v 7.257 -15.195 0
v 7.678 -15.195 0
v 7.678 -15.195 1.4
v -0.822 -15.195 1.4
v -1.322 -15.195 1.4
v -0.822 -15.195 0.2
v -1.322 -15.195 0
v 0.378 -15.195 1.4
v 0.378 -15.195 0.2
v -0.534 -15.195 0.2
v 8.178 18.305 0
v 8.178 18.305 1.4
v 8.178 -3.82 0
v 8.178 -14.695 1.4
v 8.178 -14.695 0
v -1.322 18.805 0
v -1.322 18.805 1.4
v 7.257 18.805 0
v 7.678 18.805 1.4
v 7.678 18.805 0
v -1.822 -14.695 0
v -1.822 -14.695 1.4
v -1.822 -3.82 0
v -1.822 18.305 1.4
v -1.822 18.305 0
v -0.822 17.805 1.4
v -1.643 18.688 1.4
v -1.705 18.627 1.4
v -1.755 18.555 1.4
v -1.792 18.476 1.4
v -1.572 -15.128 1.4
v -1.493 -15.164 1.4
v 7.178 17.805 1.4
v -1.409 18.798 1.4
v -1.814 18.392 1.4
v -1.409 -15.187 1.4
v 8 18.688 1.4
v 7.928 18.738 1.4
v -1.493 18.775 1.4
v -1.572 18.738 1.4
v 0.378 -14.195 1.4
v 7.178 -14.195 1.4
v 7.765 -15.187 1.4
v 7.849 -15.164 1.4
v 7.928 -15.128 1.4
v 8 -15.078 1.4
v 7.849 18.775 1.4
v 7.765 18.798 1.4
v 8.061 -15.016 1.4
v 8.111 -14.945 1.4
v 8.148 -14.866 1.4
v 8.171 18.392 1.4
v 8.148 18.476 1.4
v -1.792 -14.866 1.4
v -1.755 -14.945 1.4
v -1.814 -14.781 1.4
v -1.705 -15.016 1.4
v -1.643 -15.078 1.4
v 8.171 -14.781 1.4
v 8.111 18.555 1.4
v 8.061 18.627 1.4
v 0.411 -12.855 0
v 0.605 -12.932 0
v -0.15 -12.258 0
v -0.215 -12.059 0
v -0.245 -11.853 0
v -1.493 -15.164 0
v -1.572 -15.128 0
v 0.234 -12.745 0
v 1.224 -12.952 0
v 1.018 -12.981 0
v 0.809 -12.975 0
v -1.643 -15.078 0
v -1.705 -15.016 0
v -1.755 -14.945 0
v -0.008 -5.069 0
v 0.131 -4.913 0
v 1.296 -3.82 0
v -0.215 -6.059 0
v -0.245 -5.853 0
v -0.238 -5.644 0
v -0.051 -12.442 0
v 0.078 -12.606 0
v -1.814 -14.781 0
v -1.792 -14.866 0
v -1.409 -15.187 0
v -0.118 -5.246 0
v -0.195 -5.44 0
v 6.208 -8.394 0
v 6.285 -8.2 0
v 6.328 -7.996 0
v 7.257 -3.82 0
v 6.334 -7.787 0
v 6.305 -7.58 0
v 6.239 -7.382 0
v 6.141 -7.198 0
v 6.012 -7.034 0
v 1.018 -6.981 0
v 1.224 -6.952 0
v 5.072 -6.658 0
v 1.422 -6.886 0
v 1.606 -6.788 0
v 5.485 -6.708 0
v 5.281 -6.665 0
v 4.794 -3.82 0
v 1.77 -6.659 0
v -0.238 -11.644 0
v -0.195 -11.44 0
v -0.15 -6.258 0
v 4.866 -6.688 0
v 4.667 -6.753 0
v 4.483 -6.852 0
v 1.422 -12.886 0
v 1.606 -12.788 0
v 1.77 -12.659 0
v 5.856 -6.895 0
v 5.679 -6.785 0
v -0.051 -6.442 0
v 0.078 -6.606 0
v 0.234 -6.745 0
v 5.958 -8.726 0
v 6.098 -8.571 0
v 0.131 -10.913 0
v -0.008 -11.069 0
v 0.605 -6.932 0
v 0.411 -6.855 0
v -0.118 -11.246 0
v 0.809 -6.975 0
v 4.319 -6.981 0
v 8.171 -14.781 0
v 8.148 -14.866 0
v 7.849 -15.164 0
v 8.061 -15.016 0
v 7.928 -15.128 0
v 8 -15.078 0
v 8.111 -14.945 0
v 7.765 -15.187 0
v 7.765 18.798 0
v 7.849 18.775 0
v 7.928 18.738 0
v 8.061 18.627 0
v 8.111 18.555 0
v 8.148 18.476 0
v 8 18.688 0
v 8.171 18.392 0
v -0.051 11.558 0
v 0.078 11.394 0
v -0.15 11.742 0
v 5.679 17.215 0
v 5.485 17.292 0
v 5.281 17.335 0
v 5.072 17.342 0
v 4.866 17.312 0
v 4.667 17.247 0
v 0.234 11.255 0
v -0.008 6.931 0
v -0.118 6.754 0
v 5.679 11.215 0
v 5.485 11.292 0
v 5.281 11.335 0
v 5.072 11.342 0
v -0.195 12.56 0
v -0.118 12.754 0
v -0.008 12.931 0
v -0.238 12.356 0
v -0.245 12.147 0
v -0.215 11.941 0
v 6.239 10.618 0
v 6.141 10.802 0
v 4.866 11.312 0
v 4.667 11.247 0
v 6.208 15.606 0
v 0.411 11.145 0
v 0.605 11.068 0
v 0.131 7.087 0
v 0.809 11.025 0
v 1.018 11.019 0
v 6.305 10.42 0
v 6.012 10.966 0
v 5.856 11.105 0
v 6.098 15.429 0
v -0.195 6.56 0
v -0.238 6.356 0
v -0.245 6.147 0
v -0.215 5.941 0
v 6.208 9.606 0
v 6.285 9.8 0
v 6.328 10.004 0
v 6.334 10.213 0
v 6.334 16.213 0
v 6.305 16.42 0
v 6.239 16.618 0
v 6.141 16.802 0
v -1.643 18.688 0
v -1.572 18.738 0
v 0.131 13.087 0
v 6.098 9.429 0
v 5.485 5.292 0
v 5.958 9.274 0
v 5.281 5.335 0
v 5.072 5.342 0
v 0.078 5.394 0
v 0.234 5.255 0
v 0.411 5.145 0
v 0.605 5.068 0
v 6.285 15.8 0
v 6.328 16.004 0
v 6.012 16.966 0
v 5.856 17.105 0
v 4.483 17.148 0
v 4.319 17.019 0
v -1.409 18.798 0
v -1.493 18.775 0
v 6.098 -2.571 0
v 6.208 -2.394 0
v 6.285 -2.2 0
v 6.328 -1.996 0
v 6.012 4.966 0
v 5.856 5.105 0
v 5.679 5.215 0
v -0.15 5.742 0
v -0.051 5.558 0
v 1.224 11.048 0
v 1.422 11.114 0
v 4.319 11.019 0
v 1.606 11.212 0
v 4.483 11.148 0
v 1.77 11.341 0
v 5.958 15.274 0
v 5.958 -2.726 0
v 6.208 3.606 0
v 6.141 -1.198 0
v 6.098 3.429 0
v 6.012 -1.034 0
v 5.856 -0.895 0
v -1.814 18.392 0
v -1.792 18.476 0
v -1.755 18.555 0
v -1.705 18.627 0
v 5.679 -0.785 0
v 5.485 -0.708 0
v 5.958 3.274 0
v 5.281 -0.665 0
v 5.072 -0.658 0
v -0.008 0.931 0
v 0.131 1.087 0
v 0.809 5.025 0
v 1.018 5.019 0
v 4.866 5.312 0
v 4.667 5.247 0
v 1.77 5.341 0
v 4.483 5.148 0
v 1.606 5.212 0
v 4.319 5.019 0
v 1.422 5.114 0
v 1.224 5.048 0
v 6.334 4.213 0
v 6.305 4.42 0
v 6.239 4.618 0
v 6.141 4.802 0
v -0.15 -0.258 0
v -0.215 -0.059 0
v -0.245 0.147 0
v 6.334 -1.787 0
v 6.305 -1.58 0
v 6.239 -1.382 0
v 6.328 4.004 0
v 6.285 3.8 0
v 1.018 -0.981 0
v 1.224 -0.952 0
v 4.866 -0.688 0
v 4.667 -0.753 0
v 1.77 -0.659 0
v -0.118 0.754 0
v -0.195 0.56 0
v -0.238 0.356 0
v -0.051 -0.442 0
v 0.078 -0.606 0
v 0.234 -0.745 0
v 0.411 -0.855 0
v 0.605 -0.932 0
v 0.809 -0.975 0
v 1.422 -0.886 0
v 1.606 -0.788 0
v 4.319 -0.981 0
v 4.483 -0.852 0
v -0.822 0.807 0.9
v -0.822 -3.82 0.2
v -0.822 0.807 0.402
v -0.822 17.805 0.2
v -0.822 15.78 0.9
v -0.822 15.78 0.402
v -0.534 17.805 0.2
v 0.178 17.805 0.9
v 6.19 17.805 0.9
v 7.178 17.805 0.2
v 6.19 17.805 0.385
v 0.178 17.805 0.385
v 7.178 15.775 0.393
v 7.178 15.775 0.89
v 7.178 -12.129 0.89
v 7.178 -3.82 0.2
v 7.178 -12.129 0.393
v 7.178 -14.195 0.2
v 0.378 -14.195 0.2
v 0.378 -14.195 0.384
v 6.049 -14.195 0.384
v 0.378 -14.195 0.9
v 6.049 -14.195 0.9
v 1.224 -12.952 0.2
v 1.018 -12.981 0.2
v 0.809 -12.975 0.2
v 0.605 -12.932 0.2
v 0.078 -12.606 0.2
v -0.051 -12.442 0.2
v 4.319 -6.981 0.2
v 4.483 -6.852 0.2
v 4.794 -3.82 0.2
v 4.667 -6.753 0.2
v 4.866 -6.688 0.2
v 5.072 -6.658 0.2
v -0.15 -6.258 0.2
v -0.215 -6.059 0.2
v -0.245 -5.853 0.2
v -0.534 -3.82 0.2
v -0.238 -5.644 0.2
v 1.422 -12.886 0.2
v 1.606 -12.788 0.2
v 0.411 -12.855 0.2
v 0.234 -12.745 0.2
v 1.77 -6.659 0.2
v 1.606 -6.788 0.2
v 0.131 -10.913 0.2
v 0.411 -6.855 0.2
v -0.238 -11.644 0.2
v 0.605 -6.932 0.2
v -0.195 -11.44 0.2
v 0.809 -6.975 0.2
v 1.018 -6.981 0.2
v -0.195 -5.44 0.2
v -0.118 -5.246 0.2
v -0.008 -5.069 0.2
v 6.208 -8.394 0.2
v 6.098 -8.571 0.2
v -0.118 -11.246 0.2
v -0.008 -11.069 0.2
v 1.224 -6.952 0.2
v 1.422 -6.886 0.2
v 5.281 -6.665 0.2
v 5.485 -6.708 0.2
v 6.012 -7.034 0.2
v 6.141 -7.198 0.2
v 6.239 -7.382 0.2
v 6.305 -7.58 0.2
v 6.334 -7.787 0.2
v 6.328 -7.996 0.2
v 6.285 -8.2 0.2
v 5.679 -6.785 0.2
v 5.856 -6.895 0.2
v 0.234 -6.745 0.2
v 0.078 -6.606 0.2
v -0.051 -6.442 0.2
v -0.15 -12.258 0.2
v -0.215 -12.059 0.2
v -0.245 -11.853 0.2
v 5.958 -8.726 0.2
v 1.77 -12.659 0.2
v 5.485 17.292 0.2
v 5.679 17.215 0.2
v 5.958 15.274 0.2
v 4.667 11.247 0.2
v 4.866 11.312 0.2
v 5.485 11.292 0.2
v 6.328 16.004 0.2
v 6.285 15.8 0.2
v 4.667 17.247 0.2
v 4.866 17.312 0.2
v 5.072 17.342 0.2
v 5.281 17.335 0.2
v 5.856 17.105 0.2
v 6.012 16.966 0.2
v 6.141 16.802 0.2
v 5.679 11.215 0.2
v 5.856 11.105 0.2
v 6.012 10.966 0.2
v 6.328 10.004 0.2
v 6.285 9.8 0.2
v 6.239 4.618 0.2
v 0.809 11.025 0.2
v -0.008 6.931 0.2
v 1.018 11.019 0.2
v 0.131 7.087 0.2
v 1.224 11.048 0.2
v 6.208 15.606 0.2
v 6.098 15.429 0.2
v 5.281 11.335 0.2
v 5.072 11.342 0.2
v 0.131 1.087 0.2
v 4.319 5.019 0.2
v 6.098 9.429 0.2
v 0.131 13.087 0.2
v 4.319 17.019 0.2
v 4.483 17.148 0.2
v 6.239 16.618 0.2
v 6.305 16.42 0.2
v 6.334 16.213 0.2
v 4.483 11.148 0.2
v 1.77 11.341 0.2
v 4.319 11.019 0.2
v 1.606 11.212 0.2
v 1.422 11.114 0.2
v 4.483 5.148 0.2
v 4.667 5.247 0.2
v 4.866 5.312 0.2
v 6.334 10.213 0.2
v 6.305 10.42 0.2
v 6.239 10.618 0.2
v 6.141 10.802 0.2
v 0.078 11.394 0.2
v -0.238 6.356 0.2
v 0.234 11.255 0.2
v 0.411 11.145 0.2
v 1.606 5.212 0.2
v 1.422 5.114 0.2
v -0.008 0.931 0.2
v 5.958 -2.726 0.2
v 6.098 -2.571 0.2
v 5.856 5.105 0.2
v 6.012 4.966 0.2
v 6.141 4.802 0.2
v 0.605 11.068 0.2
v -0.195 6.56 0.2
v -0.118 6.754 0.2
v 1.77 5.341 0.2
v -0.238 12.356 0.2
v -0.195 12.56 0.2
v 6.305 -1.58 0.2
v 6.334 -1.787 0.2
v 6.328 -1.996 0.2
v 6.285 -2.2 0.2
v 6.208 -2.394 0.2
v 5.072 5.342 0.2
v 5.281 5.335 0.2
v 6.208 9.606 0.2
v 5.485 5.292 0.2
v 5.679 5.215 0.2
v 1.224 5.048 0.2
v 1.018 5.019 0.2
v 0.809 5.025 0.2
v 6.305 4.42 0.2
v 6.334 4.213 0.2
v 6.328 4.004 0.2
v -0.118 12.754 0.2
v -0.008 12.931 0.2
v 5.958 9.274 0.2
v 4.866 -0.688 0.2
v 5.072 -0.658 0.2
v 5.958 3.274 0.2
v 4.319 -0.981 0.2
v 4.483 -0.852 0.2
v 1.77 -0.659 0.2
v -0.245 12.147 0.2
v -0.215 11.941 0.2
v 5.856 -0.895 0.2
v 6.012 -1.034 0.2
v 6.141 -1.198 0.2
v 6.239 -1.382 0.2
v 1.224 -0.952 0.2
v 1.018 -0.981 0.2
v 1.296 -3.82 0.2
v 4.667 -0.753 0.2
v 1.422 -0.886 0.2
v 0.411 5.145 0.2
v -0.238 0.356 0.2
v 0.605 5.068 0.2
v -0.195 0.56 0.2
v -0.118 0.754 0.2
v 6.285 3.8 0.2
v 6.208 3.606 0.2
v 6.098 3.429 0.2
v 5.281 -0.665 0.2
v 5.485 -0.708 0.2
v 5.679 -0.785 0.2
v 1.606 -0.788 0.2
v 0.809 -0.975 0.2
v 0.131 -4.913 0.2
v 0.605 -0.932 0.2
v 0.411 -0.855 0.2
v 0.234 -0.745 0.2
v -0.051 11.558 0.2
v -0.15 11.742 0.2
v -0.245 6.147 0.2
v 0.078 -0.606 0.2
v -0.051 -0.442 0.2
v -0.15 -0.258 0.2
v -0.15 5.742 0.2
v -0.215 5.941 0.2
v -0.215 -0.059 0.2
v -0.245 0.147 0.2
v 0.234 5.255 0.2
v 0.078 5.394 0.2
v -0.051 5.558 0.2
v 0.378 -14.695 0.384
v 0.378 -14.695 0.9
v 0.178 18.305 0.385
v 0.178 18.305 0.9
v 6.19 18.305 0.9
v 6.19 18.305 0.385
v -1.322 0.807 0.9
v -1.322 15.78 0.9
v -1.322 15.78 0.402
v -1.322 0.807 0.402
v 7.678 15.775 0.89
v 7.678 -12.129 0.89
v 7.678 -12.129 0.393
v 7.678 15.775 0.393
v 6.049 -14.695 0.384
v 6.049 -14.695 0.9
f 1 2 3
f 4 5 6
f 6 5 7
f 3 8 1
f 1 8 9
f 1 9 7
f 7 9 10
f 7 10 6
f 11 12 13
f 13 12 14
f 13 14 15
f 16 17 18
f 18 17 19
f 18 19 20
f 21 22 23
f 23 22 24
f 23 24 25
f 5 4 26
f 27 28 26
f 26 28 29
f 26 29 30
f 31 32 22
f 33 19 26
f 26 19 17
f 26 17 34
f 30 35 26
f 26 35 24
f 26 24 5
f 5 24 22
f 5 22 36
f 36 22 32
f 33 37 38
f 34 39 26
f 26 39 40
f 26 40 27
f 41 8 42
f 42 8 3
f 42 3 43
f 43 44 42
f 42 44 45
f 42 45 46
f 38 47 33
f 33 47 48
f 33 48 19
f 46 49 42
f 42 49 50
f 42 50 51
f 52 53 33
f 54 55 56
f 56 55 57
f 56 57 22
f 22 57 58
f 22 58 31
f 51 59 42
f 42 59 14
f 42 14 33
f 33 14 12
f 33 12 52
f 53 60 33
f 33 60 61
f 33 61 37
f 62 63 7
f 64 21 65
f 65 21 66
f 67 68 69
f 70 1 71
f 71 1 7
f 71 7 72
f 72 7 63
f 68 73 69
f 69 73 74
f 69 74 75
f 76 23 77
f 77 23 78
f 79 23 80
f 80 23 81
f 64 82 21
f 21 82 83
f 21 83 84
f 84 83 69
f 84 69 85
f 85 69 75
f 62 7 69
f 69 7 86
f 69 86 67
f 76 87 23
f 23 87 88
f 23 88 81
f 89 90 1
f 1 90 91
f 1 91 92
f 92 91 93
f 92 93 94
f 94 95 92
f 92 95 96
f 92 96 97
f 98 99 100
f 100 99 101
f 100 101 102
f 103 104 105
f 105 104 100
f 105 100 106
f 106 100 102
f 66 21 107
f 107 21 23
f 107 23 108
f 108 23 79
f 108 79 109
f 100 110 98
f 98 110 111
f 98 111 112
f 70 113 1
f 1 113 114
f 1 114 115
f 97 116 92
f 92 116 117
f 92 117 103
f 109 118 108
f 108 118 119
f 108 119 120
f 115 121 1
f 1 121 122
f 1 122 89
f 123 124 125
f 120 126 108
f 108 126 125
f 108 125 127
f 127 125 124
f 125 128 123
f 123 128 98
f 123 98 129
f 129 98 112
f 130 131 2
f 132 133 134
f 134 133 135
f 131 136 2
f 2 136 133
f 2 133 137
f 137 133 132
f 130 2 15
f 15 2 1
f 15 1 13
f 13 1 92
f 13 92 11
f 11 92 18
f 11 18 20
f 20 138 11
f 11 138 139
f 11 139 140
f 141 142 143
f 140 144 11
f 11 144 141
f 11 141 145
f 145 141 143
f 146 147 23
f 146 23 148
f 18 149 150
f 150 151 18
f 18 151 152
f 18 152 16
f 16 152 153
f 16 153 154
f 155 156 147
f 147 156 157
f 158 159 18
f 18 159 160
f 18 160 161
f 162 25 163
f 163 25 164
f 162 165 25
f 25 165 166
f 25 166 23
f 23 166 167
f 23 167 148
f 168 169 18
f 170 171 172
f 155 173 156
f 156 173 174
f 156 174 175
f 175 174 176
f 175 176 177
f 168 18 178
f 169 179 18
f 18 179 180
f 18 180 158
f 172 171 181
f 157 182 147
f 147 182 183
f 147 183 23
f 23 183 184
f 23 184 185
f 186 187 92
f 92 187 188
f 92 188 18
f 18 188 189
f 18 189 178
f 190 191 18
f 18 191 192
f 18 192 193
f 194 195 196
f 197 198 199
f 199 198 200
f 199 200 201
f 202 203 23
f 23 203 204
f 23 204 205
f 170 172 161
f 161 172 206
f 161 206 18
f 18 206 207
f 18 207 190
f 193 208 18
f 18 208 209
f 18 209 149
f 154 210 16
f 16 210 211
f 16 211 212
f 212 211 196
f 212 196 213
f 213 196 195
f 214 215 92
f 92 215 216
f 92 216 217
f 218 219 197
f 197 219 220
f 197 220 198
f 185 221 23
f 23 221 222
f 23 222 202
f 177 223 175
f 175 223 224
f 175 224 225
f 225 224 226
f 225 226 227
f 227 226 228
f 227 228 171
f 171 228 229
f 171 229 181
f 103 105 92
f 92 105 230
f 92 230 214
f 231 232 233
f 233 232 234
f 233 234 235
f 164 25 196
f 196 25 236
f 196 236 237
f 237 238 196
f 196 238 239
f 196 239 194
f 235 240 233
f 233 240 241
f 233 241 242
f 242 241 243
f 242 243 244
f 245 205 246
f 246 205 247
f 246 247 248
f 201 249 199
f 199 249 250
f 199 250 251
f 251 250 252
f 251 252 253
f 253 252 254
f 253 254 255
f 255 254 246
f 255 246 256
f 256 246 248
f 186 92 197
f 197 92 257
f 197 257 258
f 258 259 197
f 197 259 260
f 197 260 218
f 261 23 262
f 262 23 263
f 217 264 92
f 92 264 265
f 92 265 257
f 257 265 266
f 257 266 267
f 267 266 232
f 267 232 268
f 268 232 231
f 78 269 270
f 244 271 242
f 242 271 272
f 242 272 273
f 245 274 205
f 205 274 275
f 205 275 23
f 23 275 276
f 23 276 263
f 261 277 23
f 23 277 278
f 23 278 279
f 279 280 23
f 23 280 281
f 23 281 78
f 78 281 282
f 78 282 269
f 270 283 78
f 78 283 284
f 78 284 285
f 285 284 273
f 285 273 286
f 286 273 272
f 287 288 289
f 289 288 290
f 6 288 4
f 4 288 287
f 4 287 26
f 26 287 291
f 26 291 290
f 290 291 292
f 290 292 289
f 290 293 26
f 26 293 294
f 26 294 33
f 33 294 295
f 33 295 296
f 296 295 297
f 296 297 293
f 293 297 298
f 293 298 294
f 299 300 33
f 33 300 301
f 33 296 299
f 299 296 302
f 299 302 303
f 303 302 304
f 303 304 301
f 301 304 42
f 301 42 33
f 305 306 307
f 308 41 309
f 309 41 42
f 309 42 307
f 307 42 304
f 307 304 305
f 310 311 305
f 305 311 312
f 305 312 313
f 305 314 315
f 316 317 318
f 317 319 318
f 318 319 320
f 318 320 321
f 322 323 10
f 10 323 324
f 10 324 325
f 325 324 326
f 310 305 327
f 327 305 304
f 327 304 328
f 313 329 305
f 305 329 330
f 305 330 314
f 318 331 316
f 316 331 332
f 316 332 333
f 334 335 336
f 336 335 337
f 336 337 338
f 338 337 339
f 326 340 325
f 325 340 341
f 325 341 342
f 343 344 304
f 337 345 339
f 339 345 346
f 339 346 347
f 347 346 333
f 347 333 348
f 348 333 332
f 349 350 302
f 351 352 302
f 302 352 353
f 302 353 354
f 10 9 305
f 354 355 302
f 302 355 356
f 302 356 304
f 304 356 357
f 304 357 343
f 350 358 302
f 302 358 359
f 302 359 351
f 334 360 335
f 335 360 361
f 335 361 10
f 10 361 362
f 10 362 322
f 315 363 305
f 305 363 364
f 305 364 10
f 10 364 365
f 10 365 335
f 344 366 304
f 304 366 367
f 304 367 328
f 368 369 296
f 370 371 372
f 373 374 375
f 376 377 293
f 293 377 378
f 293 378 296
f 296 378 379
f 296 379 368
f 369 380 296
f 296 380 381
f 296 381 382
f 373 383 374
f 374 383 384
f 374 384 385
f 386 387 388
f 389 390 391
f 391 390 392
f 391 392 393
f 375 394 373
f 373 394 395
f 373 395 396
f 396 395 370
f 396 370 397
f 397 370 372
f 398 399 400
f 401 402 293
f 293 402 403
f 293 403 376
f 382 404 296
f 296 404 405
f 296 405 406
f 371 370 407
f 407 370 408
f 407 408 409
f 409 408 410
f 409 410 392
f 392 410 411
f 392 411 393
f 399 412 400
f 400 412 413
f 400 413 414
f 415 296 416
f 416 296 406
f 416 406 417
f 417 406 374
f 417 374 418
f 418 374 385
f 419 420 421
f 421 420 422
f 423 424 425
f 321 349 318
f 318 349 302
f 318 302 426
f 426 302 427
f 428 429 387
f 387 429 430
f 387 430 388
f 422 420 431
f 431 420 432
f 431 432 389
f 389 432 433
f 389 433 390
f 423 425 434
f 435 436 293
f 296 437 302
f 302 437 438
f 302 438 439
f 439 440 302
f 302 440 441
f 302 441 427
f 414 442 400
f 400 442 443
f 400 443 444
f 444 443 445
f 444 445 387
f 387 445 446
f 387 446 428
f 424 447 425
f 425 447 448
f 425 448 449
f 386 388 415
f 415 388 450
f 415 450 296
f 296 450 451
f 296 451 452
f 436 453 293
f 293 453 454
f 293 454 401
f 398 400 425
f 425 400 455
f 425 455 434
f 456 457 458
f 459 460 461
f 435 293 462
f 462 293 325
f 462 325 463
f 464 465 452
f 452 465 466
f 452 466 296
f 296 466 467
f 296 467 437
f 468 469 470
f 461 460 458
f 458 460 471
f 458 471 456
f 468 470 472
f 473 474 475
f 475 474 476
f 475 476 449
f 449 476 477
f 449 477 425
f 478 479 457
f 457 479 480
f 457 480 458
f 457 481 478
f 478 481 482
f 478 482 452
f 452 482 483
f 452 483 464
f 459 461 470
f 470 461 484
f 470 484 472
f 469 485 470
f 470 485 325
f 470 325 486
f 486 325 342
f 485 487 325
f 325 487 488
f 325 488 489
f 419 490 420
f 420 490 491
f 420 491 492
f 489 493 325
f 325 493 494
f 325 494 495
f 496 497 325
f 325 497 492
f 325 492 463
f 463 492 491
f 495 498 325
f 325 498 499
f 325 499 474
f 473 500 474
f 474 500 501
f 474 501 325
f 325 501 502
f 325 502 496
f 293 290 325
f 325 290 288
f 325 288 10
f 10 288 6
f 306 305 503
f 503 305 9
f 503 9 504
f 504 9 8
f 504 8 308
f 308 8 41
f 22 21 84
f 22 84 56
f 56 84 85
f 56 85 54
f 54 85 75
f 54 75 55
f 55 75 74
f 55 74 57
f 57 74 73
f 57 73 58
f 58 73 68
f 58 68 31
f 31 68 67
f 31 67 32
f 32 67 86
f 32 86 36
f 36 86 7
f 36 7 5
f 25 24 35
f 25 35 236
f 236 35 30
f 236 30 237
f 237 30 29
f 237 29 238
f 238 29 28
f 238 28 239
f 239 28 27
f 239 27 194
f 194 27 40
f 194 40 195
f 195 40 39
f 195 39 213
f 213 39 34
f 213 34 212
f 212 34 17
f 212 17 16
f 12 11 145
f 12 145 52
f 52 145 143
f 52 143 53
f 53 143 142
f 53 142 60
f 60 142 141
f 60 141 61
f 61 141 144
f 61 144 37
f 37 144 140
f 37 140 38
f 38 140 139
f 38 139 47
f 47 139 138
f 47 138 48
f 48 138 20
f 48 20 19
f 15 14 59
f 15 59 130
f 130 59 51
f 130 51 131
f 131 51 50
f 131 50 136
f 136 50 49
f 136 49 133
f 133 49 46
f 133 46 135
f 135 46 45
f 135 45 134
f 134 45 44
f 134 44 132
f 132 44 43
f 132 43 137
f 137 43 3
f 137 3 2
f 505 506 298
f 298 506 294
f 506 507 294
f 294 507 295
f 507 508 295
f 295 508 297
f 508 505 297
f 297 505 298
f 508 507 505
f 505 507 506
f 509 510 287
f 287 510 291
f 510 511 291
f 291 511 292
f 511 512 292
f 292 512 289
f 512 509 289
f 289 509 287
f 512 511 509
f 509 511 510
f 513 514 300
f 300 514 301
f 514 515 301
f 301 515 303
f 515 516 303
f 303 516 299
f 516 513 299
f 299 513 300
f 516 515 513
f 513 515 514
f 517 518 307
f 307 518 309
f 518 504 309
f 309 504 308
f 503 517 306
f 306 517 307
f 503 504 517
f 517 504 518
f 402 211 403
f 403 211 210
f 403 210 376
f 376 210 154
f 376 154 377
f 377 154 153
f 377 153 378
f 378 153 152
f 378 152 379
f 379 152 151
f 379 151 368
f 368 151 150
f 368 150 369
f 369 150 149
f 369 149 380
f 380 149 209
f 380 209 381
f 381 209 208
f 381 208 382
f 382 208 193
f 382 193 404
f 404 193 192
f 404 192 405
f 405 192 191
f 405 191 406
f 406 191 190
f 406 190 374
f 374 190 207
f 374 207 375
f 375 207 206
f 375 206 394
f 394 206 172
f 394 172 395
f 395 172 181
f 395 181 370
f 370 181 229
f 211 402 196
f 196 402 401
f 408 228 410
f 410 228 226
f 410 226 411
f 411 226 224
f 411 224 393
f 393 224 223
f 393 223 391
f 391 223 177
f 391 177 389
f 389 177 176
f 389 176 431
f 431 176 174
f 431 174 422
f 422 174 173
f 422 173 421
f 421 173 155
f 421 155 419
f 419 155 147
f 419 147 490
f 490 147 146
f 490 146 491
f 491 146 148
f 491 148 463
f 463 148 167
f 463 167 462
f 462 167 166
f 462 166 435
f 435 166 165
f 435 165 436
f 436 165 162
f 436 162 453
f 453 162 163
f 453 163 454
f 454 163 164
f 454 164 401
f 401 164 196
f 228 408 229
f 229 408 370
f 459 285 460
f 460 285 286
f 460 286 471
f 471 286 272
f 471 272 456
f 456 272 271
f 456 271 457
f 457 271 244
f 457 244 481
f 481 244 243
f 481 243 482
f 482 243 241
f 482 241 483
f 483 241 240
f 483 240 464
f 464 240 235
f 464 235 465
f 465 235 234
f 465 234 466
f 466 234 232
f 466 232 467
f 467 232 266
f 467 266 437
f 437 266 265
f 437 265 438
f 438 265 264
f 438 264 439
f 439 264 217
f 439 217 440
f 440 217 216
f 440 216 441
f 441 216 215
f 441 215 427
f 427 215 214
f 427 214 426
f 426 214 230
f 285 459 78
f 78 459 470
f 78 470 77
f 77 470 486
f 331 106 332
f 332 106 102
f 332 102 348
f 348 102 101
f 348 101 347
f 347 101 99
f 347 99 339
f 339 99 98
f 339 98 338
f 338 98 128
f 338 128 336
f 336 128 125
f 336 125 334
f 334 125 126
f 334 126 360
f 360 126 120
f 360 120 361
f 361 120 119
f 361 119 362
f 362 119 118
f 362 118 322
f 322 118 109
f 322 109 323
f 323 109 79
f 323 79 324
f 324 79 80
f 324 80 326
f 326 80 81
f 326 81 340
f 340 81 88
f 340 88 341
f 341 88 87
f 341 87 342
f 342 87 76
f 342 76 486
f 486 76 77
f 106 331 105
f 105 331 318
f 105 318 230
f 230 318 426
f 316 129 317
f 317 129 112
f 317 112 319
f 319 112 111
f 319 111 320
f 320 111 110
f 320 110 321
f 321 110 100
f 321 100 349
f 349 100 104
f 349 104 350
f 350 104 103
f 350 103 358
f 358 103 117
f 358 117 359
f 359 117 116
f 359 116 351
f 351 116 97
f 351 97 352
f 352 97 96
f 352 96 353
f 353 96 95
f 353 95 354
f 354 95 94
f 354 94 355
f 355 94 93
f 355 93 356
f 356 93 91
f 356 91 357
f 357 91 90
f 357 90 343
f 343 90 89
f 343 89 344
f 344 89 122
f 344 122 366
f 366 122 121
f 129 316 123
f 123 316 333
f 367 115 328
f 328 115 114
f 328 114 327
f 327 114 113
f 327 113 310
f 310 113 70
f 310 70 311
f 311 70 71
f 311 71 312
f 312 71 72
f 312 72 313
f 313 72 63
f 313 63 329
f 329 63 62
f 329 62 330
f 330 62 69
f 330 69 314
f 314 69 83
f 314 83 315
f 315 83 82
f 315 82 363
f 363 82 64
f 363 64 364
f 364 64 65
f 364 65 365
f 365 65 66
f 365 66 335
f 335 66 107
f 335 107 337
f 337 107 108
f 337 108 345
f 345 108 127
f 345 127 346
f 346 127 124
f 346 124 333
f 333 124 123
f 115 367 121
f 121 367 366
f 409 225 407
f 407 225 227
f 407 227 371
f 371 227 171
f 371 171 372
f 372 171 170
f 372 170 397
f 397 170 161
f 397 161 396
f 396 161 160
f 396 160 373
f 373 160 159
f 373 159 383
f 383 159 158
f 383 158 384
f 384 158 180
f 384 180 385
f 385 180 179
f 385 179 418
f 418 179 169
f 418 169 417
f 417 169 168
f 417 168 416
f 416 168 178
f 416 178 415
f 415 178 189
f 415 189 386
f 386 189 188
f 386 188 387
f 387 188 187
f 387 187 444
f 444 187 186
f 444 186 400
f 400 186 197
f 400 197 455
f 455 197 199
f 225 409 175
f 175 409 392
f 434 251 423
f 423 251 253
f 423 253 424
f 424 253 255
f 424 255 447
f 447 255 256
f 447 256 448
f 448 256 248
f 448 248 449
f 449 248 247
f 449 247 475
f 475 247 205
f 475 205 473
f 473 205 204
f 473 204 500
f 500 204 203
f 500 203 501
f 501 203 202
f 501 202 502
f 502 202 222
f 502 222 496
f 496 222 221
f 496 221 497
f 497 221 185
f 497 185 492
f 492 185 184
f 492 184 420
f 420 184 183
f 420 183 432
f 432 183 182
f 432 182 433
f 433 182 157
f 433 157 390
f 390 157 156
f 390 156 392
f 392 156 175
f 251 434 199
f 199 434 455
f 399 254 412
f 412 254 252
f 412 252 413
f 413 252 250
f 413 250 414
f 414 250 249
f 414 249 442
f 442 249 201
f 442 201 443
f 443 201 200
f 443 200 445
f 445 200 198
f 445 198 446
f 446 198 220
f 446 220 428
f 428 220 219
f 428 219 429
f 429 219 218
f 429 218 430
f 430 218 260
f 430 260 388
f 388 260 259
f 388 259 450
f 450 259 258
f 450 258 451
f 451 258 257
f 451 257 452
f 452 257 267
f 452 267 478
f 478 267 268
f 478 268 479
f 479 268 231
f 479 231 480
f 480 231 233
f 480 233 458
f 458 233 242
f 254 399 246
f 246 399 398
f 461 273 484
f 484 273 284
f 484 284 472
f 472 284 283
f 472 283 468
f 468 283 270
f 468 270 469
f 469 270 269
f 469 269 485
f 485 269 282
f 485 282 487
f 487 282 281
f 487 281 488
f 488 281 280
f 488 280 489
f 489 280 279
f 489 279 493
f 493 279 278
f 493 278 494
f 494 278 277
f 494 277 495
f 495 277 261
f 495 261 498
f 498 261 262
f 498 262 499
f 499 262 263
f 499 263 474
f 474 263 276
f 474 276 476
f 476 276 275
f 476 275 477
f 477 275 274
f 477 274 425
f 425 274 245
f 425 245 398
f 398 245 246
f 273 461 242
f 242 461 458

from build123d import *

# Parameters (mm, degrees)
SKETCH_1_W           = 10
SKETCH_1_H           = 34
EXTRUDE_2_DEPTH      = 1.4
SKETCH_2_W           = 8
SKETCH_2_H           = 32
CUT_EXTRUDE_1_DEPTH  = 1.2
SKETCH_4_W           = 1.2
SKETCH_4_H           = 1
CUT_EXTRUDE_4_DEPTH  = 1.2
FILLET_1_R           = 0.5
FILLET_2_R           = 0.5
SKETCH_6_W           = 6.011424245
SKETCH_6_H           = 0.514664245
CUT_EXTRUDE_6_DEPTH  = 0.5
SKETCH_7_W           = 0.498386998
SKETCH_7_H           = 14.972688723
CUT_EXTRUDE_7_DEPTH  = 0.5
SKETCH_8_W           = 0.497690278
SKETCH_8_H           = 27.903913782
CUT_EXTRUDE_8_DEPTH  = 0.5
SKETCH_10_W          = 5.67106867
SKETCH_10_H          = 0.515598409
CUT_EXTRUDE_9_DEPTH  = 0.5
CUT_EXTRUDE_11_REACH = 22.554


with BuildPart() as part:
    # 草图1 → 凸台-拉伸2 (new body)
    with BuildSketch(Plane.XY):
        with Locations((3.178294574, 1.80536099)):
            Rectangle(SKETCH_1_W, SKETCH_1_H)
    extrude(amount=EXTRUDE_2_DEPTH)

    # 草图2 → 切除-拉伸1 (cut)
    with BuildSketch(Plane.XY.offset(1.4)):
        with Locations((3.178294574, 1.80536099)):
            Rectangle(SKETCH_2_W, SKETCH_2_H)
    extrude(amount=-CUT_EXTRUDE_1_DEPTH, mode=Mode.SUBTRACT)

    # 草图4 → 切除-拉伸4 (cut)
    with BuildSketch(Plane.XY.offset(1.4)):
        with Locations((-0.221705426, -14.69463901)):
            Rectangle(SKETCH_4_W, SKETCH_4_H)
    extrude(amount=-CUT_EXTRUDE_4_DEPTH, mode=Mode.SUBTRACT)

    # 圆角1
    fillet_1_edges = [part.edges().sort_by_distance(p)[0] for p in [
        (-1.821705426, -15.19463901, 0.7),
    ]]
    fillet(fillet_1_edges, radius=FILLET_1_R)

    # 圆角2
    fillet_2_edges = [part.edges().sort_by_distance(p)[0] for p in [
        (-1.821705426, 18.80536099, 0.7),
        (8.178294574, 18.80536099, 0.7),
        (8.178294574, -15.19463901, 0.7),
    ]]
    fillet(fillet_2_edges, radius=FILLET_2_R)

    # 草图6 → 切除-拉伸6 (cut)
    with BuildSketch(Plane.XZ.offset(-17.80536099)):
        with Locations((3.184006697, 0.642667877)):
            Rectangle(SKETCH_6_W, SKETCH_6_H)
    extrude(amount=-CUT_EXTRUDE_6_DEPTH, mode=Mode.SUBTRACT)

    # 草图7 → 切除-拉伸7 (cut)
    with BuildSketch(Plane(origin=(-0.821705426, 0, 0), x_dir=(0, 0, -1), z_dir=(1, 0, 0))):
        with Locations((-0.650806501, 8.293480481)):
            Rectangle(SKETCH_7_W, SKETCH_7_H)
    extrude(amount=-CUT_EXTRUDE_7_DEPTH, mode=Mode.SUBTRACT)

    # 草图8 → 切除-拉伸8 (cut)
    with BuildSketch(Plane.ZY.offset(-7.178294574)):
        with Locations((0.641533001, 1.822842427)):
            Rectangle(SKETCH_8_W, SKETCH_8_H)
    extrude(amount=-CUT_EXTRUDE_8_DEPTH, mode=Mode.SUBTRACT)

    # 草图10 → 切除-拉伸9 (cut)
    with BuildSketch(Plane(origin=(0, -14.19463901, 0), x_dir=(1, 0, 0), z_dir=(0, 1, 0))):
        with Locations((3.213828909, -0.642200795)):
            Rectangle(SKETCH_10_W, SKETCH_10_H)
    extrude(amount=-CUT_EXTRUDE_9_DEPTH, mode=Mode.SUBTRACT)

    # 草图11 → 切除-拉伸11 (cut, up to next)
    with BuildSketch(Plane(origin=(0, 0, 0), x_dir=(-1, 0, 0), z_dir=(0, 0, -1)), mode=Mode.PRIVATE) as cut_extrude_11_sk1:
        with BuildLine():
            Line((-4.31947378, 17.019101686), (-0.131341084, 13.086732818))
            ThreePointArc((-0.131341084, 13.086732818), (-0.078041772, 11.394479644), (-1.770294947, 11.341180331))
            Line((-1.770294947, 11.341180331), (-5.958427643, 15.273549198))
            ThreePointArc((-5.958427643, 15.273549198), (-6.011726955, 16.965802373), (-4.31947378, 17.019101686))
        make_face()
    cut_extrude_11_tool1 = extrude(cut_extrude_11_sk1.sketch, amount=-CUT_EXTRUDE_11_REACH, mode=Mode.PRIVATE) & part.part
    # 草图11 → 切除-拉伸11 (cut, up to next)
    with BuildSketch(Plane(origin=(0, 0, 0), x_dir=(-1, 0, 0), z_dir=(0, 0, -1)), mode=Mode.PRIVATE) as cut_extrude_11_sk2:
        with BuildLine():
            Line((-5.958427643, 9.273549198), (-1.770294947, 5.341180331))
            ThreePointArc((-1.770294947, 5.341180331), (-0.078041772, 5.394479644), (-0.131341084, 7.086732818))
            Line((-0.131341084, 7.086732818), (-4.31947378, 11.019101686))
            ThreePointArc((-4.31947378, 11.019101686), (-6.011726955, 10.965802373), (-5.958427643, 9.273549198))
        make_face()
    cut_extrude_11_tool2 = extrude(cut_extrude_11_sk2.sketch, amount=-CUT_EXTRUDE_11_REACH, mode=Mode.PRIVATE) & part.part
    # 草图11 → 切除-拉伸11 (cut, up to next)
    with BuildSketch(Plane(origin=(0, 0, 0), x_dir=(-1, 0, 0), z_dir=(0, 0, -1)), mode=Mode.PRIVATE) as cut_extrude_11_sk3:
        with BuildLine():
            Line((-5.958427643, 3.273549198), (-1.770294947, -0.658819669))
            ThreePointArc((-1.770294947, -0.658819669), (-0.078041772, -0.605520356), (-0.131341084, 1.086732818))
            Line((-0.131341084, 1.086732818), (-4.31947378, 5.019101686))
            ThreePointArc((-4.31947378, 5.019101686), (-6.011726955, 4.965802373), (-5.958427643, 3.273549198))
        make_face()
    cut_extrude_11_tool3 = extrude(cut_extrude_11_sk3.sketch, amount=-CUT_EXTRUDE_11_REACH, mode=Mode.PRIVATE) & part.part
    # 草图11 → 切除-拉伸11 (cut, up to next)
    with BuildSketch(Plane(origin=(0, 0, 0), x_dir=(-1, 0, 0), z_dir=(0, 0, -1)), mode=Mode.PRIVATE) as cut_extrude_11_sk4:
        with BuildLine():
            Line((-5.958427643, -2.726450802), (-1.770294947, -6.658819669))
            ThreePointArc((-1.770294947, -6.658819669), (-0.078041772, -6.605520356), (-0.131341084, -4.913267182))
            Line((-0.131341084, -4.913267182), (-4.31947378, -0.980898314))
            ThreePointArc((-4.31947378, -0.980898314), (-6.011726955, -1.034197627), (-5.958427643, -2.726450802))
        make_face()
    cut_extrude_11_tool4 = extrude(cut_extrude_11_sk4.sketch, amount=-CUT_EXTRUDE_11_REACH, mode=Mode.PRIVATE) & part.part
    # 草图11 → 切除-拉伸11 (cut, up to next)
    with BuildSketch(Plane(origin=(0, 0, 0), x_dir=(-1, 0, 0), z_dir=(0, 0, -1)), mode=Mode.PRIVATE) as cut_extrude_11_sk5:
        with BuildLine():
            Line((-5.958427643, -8.726450802), (-1.770294947, -12.658819669))
            ThreePointArc((-1.770294947, -12.658819669), (-0.078041772, -12.605520356), (-0.131341084, -10.913267182))
            Line((-0.131341084, -10.913267182), (-4.31947378, -6.980898314))
            ThreePointArc((-4.31947378, -6.980898314), (-6.011726955, -7.034197627), (-5.958427643, -8.726450802))
        make_face()
    cut_extrude_11_tool5 = extrude(cut_extrude_11_sk5.sketch, amount=-CUT_EXTRUDE_11_REACH, mode=Mode.PRIVATE) & part.part
    add(cut_extrude_11_tool1.solids().sort_by_distance((3.044884, 14.180141, 0))[0], mode=Mode.SUBTRACT)
    add(cut_extrude_11_tool2.solids().sort_by_distance((3.044884, 8.180141, 0))[0], mode=Mode.SUBTRACT)
    add(cut_extrude_11_tool3.solids().sort_by_distance((3.044884, 2.180141, 0))[0], mode=Mode.SUBTRACT)
    add(cut_extrude_11_tool4.solids().sort_by_distance((3.044884, -3.819859, 0))[0], mode=Mode.SUBTRACT)
    add(cut_extrude_11_tool5.solids().sort_by_distance((3.044884, -9.819859, 0))[0], mode=Mode.SUBTRACT)


solid = part.part
